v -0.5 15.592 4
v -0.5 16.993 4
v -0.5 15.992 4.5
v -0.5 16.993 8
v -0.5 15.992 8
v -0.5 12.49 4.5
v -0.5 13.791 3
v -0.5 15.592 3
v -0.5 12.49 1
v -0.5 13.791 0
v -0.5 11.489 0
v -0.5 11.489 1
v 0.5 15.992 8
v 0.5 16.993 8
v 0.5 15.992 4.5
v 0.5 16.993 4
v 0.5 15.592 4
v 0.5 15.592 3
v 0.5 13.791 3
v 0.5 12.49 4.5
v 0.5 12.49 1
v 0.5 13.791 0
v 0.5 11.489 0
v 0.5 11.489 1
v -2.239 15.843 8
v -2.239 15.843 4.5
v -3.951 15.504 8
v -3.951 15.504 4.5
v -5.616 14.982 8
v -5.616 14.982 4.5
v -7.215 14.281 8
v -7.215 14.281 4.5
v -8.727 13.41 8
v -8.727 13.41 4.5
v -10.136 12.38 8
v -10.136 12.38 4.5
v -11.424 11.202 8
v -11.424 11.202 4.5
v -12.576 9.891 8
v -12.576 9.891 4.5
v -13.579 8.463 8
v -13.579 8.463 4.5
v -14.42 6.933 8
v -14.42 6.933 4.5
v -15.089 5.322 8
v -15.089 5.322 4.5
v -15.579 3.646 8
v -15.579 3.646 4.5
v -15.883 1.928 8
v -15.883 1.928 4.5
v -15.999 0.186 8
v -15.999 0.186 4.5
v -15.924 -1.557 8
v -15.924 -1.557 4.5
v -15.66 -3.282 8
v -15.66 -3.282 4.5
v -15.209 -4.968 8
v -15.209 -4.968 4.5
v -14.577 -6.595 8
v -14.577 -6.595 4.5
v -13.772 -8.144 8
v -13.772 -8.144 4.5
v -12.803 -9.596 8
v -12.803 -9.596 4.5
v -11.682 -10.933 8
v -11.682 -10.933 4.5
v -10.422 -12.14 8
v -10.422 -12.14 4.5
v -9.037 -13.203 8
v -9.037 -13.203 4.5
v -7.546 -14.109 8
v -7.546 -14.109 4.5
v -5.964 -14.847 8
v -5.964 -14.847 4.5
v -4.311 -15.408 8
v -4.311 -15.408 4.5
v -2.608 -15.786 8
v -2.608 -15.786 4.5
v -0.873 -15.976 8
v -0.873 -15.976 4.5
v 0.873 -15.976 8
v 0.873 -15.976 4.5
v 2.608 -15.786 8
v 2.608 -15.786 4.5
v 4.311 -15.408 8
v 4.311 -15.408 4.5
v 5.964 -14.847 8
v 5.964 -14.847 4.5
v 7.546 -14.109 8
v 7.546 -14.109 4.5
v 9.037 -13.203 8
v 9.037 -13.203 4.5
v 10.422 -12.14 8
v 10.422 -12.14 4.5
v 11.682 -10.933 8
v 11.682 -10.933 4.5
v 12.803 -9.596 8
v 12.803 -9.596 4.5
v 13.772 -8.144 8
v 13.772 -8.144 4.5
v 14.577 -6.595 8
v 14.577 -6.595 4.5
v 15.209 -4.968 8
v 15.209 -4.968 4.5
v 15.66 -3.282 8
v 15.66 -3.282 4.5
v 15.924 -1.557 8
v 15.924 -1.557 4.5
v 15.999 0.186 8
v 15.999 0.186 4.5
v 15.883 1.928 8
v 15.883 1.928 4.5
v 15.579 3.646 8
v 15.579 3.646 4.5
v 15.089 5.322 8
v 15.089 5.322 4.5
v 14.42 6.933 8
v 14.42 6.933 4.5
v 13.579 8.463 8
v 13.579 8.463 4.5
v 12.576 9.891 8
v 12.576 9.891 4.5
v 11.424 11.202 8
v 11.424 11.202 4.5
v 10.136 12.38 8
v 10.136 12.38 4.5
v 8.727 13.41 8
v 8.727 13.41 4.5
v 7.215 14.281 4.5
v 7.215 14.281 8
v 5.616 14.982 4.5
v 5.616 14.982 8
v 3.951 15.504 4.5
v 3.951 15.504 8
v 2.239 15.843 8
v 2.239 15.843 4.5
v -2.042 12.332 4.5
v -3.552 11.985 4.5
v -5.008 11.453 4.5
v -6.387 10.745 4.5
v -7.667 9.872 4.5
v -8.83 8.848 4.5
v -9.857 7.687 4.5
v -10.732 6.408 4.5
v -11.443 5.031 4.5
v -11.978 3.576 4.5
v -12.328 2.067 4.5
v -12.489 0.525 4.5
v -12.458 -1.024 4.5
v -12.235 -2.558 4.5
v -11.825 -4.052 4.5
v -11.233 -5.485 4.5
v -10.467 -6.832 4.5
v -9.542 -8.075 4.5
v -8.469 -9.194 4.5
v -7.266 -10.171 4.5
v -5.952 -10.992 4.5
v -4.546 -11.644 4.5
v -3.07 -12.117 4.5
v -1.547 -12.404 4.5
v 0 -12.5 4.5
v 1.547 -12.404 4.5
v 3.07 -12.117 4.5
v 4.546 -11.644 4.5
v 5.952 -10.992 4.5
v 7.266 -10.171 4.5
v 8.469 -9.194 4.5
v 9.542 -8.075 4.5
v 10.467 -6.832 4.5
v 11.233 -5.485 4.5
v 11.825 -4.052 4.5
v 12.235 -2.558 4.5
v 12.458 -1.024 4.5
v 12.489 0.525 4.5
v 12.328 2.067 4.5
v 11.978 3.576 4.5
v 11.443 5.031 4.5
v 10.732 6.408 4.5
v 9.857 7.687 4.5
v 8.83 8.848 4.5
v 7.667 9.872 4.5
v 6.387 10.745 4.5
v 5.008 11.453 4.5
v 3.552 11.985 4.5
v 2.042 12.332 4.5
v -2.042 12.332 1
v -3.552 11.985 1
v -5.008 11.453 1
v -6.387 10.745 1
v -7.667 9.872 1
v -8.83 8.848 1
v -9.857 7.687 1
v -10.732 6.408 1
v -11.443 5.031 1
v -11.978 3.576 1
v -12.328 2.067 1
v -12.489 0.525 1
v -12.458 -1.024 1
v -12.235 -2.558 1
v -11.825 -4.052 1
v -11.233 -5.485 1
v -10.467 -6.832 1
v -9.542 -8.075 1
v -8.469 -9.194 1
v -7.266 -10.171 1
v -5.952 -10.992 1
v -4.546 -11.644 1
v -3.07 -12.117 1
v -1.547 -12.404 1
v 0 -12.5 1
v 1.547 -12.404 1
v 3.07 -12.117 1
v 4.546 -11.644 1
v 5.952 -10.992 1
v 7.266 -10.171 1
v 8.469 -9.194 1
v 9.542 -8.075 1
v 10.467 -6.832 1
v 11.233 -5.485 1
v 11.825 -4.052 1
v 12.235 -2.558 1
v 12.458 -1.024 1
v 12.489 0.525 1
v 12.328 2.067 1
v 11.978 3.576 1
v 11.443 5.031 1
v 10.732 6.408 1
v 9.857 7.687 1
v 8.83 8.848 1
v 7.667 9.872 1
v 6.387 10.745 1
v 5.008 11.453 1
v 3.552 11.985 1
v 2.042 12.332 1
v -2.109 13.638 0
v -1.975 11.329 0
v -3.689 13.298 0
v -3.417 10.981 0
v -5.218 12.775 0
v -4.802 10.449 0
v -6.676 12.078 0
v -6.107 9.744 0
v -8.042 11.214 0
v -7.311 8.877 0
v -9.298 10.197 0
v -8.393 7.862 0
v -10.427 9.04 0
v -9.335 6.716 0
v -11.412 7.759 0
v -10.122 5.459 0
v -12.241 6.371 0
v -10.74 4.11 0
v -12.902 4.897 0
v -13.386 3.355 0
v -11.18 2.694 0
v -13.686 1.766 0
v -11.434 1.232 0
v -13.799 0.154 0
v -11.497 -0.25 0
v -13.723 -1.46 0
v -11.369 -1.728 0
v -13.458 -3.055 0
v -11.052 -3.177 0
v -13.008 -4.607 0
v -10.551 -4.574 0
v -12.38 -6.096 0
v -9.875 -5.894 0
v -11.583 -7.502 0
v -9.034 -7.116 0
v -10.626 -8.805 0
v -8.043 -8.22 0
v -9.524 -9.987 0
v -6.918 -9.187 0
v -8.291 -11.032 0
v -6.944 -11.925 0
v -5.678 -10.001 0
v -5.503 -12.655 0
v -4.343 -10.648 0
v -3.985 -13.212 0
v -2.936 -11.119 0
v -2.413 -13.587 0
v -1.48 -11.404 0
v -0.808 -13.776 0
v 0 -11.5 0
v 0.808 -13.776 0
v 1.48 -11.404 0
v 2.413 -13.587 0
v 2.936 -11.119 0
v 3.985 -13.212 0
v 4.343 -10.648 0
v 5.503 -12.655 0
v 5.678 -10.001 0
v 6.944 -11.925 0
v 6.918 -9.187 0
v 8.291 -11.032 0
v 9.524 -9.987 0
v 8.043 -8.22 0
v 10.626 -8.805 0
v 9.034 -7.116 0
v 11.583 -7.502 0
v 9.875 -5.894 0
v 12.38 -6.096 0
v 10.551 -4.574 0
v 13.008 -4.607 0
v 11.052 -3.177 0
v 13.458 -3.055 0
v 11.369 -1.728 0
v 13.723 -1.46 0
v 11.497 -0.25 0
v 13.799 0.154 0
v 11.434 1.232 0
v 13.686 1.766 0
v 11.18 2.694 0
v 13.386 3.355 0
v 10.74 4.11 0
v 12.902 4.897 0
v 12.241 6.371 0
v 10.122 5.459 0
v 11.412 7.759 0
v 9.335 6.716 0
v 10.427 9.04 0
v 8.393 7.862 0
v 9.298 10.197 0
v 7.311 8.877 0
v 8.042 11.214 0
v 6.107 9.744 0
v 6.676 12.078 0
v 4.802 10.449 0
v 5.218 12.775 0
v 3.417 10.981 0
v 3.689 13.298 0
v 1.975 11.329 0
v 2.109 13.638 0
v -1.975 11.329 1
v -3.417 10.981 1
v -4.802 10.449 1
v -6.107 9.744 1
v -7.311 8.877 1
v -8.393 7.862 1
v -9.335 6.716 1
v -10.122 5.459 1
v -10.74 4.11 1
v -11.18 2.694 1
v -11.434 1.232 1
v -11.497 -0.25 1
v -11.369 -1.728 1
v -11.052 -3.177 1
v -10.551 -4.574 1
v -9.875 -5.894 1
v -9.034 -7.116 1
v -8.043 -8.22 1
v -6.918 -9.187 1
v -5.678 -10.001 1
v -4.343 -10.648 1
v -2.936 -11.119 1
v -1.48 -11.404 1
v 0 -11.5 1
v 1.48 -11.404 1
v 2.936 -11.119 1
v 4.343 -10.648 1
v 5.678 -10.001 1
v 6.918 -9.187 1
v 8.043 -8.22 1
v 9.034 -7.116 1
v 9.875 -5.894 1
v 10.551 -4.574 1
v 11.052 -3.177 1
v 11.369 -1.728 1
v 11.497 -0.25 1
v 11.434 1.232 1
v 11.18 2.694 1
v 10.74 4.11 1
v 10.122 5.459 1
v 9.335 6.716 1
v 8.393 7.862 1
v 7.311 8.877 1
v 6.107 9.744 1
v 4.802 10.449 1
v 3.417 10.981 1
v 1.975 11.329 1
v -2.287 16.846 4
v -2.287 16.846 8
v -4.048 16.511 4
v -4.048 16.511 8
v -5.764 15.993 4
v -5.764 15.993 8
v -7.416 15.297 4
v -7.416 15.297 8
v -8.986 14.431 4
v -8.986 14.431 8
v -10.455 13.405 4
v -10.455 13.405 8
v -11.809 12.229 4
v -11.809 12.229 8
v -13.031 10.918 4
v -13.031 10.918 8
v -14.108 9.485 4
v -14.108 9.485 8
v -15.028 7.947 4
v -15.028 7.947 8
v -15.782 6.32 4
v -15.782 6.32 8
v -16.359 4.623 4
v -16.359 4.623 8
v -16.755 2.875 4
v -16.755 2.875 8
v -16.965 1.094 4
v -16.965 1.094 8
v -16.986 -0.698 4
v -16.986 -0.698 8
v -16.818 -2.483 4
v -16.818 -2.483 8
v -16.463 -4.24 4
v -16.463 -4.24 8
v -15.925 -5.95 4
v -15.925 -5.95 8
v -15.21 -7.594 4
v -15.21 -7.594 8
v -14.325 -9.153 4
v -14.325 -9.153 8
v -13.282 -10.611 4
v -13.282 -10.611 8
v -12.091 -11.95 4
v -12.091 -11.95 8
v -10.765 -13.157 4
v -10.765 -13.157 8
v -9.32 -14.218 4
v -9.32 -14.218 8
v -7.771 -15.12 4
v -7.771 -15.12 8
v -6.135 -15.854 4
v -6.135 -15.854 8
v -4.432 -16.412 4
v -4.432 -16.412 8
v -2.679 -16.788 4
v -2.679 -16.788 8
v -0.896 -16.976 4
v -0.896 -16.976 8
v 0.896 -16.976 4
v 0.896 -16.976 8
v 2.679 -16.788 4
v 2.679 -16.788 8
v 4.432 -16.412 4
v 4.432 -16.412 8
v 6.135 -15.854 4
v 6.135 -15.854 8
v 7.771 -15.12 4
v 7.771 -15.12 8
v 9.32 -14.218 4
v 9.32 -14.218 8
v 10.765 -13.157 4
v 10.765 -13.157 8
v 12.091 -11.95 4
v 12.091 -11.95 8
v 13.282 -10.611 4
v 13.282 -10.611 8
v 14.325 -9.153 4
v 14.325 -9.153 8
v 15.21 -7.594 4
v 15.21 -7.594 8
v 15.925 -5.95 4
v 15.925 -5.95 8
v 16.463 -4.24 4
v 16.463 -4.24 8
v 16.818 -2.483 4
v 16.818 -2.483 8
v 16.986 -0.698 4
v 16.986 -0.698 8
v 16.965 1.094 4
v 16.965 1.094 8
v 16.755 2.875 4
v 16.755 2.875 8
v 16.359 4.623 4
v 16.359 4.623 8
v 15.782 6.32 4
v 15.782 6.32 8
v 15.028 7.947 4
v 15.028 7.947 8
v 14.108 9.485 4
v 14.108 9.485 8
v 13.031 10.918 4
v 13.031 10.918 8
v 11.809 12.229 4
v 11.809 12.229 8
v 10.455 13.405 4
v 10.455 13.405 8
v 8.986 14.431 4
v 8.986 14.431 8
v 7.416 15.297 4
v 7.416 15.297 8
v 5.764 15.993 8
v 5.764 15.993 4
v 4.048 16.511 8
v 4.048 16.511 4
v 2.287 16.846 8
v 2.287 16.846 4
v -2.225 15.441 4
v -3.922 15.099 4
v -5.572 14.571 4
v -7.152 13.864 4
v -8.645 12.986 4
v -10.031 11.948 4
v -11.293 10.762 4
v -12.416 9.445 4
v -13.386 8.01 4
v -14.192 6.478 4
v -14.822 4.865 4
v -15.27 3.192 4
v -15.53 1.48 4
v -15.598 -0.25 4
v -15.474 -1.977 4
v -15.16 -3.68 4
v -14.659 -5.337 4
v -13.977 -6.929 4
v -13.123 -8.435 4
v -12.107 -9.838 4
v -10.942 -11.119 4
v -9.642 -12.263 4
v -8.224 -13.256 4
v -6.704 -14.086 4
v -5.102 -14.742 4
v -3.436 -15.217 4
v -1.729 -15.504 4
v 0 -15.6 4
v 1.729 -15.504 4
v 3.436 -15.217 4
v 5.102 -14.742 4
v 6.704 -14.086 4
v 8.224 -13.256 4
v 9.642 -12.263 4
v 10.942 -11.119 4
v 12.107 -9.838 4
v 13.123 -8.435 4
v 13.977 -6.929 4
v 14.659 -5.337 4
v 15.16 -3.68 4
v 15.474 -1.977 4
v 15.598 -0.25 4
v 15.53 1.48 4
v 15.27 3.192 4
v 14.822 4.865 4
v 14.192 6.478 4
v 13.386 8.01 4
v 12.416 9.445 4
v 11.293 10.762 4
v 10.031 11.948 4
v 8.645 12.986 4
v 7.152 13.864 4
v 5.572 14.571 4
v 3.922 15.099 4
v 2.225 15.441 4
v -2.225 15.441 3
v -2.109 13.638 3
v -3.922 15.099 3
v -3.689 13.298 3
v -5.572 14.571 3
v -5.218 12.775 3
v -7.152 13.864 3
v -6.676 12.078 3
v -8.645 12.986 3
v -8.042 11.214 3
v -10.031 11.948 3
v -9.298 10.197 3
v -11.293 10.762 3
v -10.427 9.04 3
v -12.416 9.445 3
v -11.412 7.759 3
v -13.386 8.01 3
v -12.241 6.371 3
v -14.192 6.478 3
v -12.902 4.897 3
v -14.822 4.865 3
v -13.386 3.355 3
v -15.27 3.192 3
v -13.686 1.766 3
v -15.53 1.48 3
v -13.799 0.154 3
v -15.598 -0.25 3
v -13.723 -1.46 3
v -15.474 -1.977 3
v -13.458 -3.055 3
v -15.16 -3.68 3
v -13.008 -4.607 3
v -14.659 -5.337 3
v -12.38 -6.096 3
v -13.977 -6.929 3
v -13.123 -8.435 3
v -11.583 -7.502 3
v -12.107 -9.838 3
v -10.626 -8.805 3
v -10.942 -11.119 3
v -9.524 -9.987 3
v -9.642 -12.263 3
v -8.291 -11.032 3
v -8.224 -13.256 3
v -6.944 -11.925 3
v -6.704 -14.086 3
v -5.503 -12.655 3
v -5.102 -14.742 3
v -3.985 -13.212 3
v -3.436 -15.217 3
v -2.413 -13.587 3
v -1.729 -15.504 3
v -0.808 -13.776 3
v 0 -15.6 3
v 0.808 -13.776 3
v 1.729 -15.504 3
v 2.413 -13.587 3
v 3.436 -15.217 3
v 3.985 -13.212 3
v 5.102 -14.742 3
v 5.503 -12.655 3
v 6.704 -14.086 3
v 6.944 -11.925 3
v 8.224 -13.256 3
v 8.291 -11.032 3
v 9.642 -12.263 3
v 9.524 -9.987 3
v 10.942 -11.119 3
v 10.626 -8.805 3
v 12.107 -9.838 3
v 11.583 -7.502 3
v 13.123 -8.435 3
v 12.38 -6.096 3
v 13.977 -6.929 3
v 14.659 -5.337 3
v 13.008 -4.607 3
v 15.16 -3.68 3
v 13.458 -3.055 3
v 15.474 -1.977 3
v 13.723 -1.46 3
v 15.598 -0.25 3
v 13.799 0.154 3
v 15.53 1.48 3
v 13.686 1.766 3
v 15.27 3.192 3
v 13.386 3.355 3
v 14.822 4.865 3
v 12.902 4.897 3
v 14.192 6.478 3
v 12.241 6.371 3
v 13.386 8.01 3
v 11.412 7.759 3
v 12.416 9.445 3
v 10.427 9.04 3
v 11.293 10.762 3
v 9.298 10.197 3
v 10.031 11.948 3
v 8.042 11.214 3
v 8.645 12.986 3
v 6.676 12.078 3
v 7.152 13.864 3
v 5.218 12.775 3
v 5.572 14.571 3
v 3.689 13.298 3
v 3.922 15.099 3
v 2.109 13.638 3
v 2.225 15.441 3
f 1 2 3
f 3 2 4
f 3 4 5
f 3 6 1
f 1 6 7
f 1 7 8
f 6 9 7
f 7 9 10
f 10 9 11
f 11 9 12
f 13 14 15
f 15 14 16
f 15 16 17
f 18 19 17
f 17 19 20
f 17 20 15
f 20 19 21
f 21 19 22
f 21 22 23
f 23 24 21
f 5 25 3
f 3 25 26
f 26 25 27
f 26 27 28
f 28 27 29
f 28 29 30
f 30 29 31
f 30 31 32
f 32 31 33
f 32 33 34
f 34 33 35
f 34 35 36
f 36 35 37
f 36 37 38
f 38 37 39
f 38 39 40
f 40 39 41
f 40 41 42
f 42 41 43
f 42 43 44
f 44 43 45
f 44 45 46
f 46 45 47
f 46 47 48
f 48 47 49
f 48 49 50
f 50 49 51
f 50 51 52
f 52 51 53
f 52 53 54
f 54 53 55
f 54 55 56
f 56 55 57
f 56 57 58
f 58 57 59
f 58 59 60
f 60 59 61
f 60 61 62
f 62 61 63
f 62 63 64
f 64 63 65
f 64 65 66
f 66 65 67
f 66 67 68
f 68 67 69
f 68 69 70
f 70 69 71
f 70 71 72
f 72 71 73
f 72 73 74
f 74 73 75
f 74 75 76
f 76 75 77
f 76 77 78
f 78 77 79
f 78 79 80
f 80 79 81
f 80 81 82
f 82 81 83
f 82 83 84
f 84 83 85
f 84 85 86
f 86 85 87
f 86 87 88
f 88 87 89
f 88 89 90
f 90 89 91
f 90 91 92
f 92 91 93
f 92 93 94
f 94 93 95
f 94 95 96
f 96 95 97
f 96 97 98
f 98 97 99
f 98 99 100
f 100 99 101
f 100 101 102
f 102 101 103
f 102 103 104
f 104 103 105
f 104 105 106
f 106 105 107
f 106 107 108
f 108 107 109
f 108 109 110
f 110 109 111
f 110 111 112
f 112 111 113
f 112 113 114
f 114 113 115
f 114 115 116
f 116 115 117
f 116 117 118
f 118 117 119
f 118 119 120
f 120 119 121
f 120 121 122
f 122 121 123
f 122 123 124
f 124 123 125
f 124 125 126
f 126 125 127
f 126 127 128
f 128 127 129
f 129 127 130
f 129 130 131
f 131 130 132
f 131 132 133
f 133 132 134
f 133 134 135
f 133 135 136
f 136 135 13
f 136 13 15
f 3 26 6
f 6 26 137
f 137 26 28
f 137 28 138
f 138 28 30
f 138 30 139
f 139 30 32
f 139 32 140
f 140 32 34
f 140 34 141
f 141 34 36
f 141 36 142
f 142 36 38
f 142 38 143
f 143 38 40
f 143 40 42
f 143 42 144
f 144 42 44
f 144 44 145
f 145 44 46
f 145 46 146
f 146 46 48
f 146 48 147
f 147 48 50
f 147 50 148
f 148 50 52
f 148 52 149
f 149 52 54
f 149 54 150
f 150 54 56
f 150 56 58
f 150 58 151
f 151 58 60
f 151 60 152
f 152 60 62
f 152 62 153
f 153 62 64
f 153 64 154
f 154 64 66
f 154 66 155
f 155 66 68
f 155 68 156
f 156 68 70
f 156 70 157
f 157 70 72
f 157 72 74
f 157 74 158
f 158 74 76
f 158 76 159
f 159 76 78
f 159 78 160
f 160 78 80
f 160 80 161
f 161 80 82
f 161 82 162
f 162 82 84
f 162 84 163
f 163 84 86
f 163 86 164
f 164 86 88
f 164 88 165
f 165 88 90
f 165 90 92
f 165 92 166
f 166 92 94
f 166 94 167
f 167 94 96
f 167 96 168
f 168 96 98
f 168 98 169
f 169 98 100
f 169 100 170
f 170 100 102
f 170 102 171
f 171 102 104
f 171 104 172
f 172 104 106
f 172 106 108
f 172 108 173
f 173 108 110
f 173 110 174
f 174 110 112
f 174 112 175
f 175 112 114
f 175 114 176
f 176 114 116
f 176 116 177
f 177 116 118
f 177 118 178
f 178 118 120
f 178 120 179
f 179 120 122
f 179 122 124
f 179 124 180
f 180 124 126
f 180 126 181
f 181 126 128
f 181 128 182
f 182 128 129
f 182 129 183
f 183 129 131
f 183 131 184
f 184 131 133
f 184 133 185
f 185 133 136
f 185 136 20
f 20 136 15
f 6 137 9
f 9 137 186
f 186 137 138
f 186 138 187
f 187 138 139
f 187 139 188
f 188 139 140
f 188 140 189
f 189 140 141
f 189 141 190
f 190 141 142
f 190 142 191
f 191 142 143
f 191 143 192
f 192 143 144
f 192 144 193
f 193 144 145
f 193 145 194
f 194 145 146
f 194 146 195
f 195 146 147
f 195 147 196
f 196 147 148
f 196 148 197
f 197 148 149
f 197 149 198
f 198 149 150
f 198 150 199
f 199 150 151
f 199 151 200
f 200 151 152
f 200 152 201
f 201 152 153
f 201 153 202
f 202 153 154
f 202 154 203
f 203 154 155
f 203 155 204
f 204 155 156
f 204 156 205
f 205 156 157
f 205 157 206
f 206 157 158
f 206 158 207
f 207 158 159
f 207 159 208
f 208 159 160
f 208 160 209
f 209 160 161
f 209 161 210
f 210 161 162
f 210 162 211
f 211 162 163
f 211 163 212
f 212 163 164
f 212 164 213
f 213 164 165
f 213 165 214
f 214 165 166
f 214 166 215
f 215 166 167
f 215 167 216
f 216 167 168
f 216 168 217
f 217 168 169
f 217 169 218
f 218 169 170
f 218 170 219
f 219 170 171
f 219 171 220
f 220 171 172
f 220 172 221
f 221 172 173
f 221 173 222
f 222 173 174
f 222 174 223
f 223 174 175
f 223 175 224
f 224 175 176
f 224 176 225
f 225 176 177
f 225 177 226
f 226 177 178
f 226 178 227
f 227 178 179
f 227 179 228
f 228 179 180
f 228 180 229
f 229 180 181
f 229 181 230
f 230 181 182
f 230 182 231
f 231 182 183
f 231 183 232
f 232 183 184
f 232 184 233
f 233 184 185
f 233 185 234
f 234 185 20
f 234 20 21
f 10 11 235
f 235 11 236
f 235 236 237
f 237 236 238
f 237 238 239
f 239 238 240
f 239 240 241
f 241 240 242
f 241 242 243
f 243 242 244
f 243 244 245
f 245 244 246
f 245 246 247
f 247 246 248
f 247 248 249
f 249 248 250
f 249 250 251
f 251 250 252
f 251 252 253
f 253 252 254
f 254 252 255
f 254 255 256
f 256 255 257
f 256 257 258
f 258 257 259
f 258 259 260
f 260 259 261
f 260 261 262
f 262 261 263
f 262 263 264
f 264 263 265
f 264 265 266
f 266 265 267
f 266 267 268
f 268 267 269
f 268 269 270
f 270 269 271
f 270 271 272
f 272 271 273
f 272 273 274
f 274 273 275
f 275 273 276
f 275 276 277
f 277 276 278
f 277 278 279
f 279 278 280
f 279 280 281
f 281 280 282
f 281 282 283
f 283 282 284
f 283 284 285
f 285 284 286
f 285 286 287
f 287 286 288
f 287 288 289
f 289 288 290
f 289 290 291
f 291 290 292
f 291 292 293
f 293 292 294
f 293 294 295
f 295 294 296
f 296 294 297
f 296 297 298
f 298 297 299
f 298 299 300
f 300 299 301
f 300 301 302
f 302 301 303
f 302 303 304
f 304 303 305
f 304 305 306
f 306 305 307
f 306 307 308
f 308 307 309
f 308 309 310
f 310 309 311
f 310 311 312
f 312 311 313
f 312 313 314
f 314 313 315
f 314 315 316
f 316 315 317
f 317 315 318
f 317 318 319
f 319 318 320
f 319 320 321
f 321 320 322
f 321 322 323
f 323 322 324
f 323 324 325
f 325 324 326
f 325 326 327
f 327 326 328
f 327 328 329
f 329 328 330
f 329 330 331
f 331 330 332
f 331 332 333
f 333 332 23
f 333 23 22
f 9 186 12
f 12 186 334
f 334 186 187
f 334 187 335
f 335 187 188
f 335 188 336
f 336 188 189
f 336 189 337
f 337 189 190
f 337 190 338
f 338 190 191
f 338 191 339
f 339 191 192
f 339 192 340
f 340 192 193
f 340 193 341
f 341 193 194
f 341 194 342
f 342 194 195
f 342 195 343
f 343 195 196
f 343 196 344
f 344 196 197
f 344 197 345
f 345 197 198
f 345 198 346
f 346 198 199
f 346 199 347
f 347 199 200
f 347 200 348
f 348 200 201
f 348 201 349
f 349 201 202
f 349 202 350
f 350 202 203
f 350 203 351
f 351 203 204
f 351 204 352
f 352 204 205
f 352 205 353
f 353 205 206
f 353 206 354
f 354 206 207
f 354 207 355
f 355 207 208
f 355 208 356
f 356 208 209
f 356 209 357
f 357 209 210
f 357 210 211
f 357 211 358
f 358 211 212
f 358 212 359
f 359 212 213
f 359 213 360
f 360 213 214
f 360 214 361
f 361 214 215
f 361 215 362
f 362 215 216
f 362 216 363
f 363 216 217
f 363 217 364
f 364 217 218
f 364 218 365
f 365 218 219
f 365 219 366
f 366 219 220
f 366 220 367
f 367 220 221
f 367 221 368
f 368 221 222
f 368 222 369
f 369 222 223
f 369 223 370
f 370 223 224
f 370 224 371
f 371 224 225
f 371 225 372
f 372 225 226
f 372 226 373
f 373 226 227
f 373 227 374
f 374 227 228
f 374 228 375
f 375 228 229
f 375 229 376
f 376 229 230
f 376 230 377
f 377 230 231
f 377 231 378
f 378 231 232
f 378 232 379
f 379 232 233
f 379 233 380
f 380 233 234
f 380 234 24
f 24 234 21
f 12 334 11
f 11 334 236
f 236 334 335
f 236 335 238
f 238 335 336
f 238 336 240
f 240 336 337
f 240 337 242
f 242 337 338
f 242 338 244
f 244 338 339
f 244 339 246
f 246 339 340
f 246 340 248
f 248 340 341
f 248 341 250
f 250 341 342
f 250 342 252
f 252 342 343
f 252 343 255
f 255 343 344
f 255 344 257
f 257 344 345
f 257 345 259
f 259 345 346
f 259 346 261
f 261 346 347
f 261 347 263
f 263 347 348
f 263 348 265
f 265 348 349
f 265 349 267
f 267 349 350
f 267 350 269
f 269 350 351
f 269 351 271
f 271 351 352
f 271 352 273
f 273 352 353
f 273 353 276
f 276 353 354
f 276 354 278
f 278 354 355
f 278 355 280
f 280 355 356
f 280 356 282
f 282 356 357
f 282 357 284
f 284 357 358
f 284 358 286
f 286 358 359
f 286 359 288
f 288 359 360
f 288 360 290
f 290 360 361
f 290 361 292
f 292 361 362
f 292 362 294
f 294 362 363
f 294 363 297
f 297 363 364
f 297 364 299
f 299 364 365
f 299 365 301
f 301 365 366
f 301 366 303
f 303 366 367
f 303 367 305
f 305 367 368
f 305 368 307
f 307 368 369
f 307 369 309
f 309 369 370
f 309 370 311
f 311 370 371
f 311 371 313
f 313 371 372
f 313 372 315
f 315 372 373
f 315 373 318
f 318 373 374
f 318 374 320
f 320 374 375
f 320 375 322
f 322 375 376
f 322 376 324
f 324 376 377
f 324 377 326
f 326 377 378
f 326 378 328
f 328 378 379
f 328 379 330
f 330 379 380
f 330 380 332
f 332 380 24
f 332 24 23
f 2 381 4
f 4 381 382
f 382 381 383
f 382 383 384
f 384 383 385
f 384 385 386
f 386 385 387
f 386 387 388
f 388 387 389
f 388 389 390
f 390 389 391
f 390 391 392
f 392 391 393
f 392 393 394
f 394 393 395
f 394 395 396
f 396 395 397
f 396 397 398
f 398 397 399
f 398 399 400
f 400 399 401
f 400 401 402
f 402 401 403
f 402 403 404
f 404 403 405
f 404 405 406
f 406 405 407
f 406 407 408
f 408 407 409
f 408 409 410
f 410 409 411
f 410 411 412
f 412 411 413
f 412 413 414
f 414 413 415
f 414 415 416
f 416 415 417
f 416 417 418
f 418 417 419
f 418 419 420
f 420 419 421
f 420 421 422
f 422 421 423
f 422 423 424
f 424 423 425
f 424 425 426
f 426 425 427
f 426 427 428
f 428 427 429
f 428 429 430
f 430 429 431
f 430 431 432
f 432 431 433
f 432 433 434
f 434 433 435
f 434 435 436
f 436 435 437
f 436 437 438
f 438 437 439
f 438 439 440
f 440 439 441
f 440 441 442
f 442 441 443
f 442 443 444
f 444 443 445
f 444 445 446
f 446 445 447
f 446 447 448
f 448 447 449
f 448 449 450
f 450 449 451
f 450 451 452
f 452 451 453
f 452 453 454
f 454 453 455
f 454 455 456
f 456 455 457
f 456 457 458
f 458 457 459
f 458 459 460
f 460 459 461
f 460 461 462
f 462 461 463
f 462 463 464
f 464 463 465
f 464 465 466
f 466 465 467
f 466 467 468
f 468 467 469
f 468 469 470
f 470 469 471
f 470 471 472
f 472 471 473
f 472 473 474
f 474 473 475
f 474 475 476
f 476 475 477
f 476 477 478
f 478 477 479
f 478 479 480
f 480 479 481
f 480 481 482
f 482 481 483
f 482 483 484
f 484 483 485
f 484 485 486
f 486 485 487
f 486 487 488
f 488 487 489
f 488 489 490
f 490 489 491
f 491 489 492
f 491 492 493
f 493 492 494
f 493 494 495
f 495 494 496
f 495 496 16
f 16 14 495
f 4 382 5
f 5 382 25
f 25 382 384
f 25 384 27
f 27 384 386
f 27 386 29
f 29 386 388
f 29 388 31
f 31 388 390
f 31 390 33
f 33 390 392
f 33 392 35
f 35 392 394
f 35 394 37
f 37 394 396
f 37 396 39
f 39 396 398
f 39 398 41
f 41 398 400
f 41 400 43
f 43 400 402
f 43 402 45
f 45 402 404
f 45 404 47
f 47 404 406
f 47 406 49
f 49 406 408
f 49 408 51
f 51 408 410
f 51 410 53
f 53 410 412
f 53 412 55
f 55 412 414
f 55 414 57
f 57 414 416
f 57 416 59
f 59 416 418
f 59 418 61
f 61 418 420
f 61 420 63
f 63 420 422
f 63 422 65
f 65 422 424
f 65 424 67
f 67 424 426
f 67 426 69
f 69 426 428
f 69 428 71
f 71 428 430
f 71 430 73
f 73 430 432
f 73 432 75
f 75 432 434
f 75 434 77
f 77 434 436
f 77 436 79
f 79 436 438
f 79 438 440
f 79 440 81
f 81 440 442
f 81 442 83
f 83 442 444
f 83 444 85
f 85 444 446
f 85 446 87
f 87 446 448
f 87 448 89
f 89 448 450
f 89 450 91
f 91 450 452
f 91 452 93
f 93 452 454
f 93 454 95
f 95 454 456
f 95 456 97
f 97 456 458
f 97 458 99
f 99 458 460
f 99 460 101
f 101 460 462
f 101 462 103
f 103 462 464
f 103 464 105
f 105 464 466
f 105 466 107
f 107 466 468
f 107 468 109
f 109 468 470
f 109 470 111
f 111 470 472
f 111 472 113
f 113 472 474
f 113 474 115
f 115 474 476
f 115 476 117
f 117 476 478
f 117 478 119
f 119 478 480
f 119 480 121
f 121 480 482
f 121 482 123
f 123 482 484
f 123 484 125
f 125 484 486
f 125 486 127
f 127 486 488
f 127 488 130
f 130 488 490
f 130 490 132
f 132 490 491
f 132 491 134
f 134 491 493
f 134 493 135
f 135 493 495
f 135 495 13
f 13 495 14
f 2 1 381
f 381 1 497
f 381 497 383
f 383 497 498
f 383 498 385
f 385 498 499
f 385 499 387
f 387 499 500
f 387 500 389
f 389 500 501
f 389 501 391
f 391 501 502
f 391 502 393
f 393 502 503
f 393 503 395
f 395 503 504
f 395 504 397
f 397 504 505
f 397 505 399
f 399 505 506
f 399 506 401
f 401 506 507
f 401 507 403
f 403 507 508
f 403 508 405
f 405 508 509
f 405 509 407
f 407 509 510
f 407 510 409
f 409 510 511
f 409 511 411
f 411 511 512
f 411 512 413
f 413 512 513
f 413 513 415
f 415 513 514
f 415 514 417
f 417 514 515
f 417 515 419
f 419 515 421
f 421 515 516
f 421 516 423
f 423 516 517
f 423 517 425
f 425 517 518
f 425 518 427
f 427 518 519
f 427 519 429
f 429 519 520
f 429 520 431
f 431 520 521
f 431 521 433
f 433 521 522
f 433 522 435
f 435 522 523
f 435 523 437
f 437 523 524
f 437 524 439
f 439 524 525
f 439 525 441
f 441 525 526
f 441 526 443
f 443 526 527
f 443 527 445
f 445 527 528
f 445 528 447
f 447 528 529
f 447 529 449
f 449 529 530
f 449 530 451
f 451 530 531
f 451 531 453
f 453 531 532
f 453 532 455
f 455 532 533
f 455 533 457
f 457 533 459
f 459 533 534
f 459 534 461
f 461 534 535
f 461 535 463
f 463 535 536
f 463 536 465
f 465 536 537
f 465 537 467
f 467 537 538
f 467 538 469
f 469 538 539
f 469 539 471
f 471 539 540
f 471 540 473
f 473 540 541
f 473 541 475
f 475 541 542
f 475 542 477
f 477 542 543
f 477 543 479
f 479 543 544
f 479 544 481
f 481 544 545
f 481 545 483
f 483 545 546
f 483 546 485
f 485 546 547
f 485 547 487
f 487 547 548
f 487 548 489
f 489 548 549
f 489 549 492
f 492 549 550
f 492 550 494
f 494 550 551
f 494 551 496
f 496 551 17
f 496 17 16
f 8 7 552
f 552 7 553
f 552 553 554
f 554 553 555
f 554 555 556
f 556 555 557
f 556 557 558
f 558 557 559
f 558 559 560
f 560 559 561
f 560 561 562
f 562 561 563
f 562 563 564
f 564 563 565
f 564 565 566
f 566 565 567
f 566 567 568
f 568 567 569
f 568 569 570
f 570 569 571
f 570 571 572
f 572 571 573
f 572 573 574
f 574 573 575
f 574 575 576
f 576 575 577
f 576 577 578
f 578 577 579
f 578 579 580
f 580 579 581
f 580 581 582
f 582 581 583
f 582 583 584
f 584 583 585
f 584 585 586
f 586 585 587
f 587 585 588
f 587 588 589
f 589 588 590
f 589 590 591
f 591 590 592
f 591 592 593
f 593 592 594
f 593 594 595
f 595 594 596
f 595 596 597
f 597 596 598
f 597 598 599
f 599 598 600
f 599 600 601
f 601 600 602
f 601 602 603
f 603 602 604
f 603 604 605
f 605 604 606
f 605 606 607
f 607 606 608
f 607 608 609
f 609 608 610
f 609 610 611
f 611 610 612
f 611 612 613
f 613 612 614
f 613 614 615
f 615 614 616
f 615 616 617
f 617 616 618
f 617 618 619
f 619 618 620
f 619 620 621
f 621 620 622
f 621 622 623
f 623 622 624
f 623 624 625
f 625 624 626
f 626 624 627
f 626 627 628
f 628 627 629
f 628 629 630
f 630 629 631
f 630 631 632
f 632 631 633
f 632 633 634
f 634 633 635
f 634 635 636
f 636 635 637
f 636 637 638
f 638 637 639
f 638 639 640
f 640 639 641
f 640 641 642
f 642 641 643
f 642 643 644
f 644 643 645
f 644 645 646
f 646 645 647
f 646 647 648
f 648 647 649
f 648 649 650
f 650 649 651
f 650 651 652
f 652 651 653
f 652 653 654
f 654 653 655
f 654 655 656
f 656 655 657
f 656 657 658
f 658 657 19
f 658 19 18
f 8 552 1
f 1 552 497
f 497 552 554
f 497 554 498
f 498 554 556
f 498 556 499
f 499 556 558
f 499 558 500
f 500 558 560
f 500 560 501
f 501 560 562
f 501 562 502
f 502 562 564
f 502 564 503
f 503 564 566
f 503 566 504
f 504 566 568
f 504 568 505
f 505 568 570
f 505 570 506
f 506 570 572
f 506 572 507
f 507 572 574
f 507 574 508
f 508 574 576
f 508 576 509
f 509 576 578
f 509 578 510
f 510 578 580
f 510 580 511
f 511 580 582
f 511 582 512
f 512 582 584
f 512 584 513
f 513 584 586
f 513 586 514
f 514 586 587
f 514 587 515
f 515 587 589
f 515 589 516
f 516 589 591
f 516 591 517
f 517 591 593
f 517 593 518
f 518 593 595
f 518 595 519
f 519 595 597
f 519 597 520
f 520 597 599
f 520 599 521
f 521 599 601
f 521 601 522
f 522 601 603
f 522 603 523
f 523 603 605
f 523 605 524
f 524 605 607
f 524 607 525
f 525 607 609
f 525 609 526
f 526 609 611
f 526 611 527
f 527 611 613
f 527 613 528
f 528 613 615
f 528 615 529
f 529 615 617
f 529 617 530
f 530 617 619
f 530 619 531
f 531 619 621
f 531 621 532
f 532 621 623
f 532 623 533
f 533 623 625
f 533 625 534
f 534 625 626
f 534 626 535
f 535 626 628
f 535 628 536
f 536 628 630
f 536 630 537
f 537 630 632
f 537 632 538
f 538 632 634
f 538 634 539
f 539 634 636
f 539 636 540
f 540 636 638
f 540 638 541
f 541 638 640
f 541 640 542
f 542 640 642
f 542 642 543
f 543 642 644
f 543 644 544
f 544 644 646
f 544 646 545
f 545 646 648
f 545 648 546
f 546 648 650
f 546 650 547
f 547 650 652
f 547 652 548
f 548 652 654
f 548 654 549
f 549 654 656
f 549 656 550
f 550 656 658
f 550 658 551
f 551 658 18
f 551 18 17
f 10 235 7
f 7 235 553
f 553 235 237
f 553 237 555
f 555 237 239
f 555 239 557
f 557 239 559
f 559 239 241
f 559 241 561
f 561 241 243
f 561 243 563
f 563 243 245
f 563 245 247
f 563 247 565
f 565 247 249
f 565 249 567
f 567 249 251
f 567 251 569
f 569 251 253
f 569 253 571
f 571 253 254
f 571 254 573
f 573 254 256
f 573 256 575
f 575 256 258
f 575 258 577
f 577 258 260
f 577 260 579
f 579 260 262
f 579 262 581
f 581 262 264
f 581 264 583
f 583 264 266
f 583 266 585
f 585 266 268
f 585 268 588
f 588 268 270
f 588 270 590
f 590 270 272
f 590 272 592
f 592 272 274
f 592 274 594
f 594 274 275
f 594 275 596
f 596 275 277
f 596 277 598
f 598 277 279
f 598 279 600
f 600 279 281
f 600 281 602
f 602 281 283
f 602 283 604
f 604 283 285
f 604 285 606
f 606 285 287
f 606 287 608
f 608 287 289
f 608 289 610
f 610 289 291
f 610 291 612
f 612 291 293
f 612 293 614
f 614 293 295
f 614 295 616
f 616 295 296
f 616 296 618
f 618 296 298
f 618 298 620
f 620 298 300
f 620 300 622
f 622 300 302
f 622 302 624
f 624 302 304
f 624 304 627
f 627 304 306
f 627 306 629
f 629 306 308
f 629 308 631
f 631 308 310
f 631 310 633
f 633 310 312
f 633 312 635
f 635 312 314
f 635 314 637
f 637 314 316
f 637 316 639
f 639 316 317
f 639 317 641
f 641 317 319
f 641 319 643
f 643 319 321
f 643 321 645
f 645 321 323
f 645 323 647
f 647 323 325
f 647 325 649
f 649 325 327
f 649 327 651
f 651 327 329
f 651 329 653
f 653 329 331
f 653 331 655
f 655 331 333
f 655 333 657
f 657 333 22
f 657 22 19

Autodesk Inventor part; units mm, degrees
ref_plane "YZ Plane" through (0, 0, 0) normal (1, 0, 0) x (0, 1, 0)
ref_plane "XZ Plane" through (0, 0, 0) normal (0, 1, 0) x (-1, 0, 0)
ref_plane "XY Plane" through (0, 0, 0) normal (0, 0, 1) x (1, 0, 0)
sketch "Sketch1" plane through (0, 0, 0) normal (0, 0, 1) x (1, 0, 0)
  circle A0 centre (0, 0) radius 13.8
  circle A1 centre (0, 0) radius 11.5
  circle A2 centre (0, 0) radius 15.6
  circle A3 centre (0, 0) radius 12.5
  dimension "d0" = 27.6
  dimension "d1" = 23
  dimension "d2" = 31.2
  dimension "d3" = 25
extrude "Extrusion1" add sketch "Sketch1" along normal blind 1 contours A3
extrude "Extrusion2" add sketch "Sketch1" along normal blind 3 contours A0
sketch "Sketch2" plane through (0, 0, 3) normal (0, 0, 1) x (1, 0, 0)
  circle A0 centre (0, 0) radius 15.6 projected
  circle A1 centre (0, 0) radius 12.5 projected
extrude "Extrusion3" add sketch "Sketch2" along normal blind 1
sketch "Sketch4" plane through (0, 0, 4) normal (0, 0, 1) x (1, 0, 0)
  circle A0 centre (0, 0) radius 16
  circle A1 centre (0, 0) radius 17
  circle A2 centre (0, 0) radius 12.5 projected
  dimension "d14" = 32
  dimension "d15" = 34
extrude "Extrusion5" add sketch "Sketch4" along normal blind 0.5 contours A0
extrude "Extrusion6" add sketch "Sketch4" along normal blind 4 contours A1
sketch "Sketch8" plane through (0, 0, 8) normal (0, 0, 1) x (1, 0, 0)
  line L0 (0.5, 10) -> (-0.5, 10)
  line L1 (-0.5, 10) -> (-0.5, 20)
  line L2 (-0.5, 20) -> (0.5, 20)
  line L3 (0.5, 20) -> (0.5, 10)
  circle A0 centre (0, 0) radius 15 projected
  line L4 (0.5, 10) -> (-0.5, 20) construction
  line L5 (-0.5, 10) -> (0.5, 20) construction
  point P0 (0, 15)
  dimension "d30" = 1
  dimension "d31" = 10
extrude "Extrusion10" cut sketch "Sketch8" against normal blind 10 contours L0 L1 A0 L3 | A0 L1 L2 L3 picked at (-0.0556, 11.6664)
properties part number "32to25mmFilterAdapter"
